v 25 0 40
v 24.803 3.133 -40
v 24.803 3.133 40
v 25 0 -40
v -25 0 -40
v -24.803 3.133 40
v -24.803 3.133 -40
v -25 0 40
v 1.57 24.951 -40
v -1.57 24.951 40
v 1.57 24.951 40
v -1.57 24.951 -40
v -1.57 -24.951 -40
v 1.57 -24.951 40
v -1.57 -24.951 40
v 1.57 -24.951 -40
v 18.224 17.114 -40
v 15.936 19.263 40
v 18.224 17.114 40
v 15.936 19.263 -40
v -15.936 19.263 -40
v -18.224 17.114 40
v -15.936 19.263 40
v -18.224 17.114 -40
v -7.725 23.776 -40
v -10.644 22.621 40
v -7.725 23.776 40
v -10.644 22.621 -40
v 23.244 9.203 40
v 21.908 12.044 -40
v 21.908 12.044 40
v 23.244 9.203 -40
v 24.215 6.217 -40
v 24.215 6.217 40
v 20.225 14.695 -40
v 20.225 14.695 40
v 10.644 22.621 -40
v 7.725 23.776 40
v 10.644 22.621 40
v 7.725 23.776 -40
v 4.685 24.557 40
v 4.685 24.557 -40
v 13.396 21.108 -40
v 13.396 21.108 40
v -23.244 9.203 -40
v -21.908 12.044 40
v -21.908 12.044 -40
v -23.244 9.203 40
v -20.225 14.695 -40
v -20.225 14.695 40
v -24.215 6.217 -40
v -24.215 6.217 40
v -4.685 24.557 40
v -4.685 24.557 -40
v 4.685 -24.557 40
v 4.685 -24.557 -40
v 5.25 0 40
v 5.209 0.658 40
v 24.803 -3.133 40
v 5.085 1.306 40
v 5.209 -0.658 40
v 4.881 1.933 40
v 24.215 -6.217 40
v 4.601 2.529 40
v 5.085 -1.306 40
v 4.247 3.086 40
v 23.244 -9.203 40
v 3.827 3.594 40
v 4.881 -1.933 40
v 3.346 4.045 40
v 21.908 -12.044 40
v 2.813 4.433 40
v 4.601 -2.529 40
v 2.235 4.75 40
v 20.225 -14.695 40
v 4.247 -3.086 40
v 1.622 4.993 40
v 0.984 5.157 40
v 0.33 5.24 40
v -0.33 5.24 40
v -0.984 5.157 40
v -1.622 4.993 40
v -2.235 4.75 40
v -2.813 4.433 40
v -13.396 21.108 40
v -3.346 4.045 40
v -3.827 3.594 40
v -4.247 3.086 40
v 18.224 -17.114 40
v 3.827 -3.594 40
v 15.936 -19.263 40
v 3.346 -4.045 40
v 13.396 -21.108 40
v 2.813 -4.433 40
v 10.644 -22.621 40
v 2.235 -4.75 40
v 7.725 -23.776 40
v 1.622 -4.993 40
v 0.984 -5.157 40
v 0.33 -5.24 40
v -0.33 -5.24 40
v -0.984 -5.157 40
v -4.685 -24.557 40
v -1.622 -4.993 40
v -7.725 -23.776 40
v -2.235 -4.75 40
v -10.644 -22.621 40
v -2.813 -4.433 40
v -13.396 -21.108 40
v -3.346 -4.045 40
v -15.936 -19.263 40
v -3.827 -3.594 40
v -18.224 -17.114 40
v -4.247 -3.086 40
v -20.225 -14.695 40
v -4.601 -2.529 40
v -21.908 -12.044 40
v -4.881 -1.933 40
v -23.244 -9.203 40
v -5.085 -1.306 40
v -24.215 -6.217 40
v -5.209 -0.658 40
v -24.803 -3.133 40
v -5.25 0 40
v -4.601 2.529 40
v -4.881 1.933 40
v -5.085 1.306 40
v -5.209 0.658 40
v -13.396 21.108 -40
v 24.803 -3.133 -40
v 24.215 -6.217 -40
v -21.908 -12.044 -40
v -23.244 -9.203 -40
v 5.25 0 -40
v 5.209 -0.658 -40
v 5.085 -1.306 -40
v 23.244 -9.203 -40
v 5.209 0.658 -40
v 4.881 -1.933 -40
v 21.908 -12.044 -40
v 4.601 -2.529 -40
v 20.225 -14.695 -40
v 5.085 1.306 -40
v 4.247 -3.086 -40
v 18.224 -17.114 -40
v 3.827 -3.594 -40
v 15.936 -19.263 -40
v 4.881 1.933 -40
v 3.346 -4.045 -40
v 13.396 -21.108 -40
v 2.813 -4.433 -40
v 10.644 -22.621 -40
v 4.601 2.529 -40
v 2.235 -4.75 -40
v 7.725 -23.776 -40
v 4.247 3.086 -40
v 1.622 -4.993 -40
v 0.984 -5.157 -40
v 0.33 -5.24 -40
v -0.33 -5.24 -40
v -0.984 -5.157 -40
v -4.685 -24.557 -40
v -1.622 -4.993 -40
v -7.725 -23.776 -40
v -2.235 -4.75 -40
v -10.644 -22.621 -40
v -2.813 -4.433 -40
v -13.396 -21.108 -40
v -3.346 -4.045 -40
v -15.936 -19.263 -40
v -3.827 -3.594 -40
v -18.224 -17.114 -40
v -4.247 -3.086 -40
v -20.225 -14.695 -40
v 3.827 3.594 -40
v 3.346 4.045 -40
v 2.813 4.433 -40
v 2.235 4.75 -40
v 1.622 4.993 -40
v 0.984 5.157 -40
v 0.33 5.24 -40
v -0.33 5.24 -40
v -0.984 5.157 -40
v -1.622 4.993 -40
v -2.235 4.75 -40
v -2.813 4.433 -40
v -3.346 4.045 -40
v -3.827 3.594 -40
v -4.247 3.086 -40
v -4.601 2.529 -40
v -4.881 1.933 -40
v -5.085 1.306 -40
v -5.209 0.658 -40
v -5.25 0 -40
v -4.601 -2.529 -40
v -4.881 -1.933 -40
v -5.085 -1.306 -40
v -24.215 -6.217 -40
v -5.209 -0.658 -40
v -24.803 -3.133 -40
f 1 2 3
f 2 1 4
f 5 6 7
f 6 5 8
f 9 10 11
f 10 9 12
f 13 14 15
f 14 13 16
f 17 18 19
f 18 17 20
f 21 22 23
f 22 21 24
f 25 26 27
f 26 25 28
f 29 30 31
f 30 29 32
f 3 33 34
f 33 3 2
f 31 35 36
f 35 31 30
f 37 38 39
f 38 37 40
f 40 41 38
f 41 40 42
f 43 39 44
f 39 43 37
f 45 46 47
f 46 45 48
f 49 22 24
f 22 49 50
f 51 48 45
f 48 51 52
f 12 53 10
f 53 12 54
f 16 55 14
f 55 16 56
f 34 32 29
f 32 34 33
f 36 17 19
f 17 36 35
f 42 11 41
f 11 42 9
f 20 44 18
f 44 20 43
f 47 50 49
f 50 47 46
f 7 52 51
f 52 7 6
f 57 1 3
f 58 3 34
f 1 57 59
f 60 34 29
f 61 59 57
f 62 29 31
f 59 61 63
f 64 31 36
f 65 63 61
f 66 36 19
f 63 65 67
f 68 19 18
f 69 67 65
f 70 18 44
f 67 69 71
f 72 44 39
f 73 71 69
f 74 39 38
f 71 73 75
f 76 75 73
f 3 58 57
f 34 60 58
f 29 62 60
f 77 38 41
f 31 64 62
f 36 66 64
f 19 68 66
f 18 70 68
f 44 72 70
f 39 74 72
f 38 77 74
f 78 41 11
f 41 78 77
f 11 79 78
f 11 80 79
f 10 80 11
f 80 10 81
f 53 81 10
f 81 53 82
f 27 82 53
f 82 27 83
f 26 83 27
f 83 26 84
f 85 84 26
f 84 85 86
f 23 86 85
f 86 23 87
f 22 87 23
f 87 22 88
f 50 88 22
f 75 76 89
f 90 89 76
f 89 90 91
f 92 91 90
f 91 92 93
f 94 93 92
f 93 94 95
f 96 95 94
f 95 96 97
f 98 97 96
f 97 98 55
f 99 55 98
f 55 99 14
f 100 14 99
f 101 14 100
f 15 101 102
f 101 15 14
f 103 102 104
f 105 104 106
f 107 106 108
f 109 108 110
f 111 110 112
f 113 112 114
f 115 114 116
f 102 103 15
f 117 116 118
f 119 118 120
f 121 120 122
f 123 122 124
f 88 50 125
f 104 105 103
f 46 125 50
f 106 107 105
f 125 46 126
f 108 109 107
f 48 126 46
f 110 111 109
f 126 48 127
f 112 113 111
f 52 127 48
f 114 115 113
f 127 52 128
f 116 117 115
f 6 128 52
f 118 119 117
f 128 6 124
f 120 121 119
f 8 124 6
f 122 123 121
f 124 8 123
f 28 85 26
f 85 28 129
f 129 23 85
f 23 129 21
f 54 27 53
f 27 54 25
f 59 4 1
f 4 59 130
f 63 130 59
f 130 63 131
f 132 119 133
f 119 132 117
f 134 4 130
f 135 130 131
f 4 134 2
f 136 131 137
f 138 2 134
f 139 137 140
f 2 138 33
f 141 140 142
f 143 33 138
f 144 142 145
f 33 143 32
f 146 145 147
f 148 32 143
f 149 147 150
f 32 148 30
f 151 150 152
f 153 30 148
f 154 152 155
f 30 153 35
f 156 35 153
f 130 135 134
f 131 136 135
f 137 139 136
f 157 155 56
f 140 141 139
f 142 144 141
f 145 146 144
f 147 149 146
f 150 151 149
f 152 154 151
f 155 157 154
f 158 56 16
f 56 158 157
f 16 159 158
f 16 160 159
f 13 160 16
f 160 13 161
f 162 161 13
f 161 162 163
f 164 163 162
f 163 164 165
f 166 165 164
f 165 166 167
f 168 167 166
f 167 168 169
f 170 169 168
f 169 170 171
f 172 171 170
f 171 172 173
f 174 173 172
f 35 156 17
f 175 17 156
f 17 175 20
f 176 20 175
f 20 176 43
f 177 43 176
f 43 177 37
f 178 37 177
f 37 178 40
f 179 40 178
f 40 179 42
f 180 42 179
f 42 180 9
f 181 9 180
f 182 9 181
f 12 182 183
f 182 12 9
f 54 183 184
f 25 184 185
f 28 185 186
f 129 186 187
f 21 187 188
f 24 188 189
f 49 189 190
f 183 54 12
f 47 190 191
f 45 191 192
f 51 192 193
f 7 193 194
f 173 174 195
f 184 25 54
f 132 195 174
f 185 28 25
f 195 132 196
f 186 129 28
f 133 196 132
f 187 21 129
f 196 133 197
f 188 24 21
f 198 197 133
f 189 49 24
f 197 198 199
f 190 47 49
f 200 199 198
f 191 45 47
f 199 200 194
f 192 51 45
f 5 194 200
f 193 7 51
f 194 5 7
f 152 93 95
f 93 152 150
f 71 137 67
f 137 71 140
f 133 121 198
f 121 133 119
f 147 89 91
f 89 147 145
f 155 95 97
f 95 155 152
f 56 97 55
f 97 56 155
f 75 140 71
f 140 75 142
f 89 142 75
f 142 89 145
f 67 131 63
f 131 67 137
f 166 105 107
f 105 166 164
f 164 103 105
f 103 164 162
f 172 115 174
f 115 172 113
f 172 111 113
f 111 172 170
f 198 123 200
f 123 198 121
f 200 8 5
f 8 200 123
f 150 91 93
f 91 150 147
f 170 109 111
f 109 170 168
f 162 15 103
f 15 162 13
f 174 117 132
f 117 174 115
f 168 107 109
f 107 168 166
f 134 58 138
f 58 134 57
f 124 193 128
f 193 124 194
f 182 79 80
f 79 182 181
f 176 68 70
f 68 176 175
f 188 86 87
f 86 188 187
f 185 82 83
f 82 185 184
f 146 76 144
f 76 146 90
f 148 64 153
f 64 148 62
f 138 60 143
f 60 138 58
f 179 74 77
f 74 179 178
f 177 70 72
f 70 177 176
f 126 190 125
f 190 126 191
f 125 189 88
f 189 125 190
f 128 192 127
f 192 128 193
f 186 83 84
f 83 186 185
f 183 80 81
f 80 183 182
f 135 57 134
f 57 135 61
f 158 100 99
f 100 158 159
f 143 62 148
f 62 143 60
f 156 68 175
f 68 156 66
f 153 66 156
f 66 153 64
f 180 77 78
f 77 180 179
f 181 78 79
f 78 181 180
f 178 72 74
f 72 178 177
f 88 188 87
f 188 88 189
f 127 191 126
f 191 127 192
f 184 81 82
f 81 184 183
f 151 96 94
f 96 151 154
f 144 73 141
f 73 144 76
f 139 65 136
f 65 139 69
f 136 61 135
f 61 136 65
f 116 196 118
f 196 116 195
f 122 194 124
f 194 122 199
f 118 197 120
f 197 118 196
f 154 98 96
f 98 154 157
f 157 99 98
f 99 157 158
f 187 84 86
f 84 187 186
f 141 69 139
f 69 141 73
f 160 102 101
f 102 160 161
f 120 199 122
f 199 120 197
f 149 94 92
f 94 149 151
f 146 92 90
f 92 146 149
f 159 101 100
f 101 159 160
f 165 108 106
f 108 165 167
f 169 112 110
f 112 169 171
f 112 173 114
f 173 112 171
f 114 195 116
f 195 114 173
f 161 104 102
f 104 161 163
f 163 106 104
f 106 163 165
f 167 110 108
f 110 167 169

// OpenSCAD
$fn = 50;


difference() {
	union() {
		translate(v = [0, 0, -40.0000000000]) {
			cylinder(h = 80, r = 25.0000000000);
		}
	}
	union() {
		translate(v = [0, 0, -100.0000000000]) {
			cylinder(h = 200, r = 5.2500000000);
		}
	}
}
